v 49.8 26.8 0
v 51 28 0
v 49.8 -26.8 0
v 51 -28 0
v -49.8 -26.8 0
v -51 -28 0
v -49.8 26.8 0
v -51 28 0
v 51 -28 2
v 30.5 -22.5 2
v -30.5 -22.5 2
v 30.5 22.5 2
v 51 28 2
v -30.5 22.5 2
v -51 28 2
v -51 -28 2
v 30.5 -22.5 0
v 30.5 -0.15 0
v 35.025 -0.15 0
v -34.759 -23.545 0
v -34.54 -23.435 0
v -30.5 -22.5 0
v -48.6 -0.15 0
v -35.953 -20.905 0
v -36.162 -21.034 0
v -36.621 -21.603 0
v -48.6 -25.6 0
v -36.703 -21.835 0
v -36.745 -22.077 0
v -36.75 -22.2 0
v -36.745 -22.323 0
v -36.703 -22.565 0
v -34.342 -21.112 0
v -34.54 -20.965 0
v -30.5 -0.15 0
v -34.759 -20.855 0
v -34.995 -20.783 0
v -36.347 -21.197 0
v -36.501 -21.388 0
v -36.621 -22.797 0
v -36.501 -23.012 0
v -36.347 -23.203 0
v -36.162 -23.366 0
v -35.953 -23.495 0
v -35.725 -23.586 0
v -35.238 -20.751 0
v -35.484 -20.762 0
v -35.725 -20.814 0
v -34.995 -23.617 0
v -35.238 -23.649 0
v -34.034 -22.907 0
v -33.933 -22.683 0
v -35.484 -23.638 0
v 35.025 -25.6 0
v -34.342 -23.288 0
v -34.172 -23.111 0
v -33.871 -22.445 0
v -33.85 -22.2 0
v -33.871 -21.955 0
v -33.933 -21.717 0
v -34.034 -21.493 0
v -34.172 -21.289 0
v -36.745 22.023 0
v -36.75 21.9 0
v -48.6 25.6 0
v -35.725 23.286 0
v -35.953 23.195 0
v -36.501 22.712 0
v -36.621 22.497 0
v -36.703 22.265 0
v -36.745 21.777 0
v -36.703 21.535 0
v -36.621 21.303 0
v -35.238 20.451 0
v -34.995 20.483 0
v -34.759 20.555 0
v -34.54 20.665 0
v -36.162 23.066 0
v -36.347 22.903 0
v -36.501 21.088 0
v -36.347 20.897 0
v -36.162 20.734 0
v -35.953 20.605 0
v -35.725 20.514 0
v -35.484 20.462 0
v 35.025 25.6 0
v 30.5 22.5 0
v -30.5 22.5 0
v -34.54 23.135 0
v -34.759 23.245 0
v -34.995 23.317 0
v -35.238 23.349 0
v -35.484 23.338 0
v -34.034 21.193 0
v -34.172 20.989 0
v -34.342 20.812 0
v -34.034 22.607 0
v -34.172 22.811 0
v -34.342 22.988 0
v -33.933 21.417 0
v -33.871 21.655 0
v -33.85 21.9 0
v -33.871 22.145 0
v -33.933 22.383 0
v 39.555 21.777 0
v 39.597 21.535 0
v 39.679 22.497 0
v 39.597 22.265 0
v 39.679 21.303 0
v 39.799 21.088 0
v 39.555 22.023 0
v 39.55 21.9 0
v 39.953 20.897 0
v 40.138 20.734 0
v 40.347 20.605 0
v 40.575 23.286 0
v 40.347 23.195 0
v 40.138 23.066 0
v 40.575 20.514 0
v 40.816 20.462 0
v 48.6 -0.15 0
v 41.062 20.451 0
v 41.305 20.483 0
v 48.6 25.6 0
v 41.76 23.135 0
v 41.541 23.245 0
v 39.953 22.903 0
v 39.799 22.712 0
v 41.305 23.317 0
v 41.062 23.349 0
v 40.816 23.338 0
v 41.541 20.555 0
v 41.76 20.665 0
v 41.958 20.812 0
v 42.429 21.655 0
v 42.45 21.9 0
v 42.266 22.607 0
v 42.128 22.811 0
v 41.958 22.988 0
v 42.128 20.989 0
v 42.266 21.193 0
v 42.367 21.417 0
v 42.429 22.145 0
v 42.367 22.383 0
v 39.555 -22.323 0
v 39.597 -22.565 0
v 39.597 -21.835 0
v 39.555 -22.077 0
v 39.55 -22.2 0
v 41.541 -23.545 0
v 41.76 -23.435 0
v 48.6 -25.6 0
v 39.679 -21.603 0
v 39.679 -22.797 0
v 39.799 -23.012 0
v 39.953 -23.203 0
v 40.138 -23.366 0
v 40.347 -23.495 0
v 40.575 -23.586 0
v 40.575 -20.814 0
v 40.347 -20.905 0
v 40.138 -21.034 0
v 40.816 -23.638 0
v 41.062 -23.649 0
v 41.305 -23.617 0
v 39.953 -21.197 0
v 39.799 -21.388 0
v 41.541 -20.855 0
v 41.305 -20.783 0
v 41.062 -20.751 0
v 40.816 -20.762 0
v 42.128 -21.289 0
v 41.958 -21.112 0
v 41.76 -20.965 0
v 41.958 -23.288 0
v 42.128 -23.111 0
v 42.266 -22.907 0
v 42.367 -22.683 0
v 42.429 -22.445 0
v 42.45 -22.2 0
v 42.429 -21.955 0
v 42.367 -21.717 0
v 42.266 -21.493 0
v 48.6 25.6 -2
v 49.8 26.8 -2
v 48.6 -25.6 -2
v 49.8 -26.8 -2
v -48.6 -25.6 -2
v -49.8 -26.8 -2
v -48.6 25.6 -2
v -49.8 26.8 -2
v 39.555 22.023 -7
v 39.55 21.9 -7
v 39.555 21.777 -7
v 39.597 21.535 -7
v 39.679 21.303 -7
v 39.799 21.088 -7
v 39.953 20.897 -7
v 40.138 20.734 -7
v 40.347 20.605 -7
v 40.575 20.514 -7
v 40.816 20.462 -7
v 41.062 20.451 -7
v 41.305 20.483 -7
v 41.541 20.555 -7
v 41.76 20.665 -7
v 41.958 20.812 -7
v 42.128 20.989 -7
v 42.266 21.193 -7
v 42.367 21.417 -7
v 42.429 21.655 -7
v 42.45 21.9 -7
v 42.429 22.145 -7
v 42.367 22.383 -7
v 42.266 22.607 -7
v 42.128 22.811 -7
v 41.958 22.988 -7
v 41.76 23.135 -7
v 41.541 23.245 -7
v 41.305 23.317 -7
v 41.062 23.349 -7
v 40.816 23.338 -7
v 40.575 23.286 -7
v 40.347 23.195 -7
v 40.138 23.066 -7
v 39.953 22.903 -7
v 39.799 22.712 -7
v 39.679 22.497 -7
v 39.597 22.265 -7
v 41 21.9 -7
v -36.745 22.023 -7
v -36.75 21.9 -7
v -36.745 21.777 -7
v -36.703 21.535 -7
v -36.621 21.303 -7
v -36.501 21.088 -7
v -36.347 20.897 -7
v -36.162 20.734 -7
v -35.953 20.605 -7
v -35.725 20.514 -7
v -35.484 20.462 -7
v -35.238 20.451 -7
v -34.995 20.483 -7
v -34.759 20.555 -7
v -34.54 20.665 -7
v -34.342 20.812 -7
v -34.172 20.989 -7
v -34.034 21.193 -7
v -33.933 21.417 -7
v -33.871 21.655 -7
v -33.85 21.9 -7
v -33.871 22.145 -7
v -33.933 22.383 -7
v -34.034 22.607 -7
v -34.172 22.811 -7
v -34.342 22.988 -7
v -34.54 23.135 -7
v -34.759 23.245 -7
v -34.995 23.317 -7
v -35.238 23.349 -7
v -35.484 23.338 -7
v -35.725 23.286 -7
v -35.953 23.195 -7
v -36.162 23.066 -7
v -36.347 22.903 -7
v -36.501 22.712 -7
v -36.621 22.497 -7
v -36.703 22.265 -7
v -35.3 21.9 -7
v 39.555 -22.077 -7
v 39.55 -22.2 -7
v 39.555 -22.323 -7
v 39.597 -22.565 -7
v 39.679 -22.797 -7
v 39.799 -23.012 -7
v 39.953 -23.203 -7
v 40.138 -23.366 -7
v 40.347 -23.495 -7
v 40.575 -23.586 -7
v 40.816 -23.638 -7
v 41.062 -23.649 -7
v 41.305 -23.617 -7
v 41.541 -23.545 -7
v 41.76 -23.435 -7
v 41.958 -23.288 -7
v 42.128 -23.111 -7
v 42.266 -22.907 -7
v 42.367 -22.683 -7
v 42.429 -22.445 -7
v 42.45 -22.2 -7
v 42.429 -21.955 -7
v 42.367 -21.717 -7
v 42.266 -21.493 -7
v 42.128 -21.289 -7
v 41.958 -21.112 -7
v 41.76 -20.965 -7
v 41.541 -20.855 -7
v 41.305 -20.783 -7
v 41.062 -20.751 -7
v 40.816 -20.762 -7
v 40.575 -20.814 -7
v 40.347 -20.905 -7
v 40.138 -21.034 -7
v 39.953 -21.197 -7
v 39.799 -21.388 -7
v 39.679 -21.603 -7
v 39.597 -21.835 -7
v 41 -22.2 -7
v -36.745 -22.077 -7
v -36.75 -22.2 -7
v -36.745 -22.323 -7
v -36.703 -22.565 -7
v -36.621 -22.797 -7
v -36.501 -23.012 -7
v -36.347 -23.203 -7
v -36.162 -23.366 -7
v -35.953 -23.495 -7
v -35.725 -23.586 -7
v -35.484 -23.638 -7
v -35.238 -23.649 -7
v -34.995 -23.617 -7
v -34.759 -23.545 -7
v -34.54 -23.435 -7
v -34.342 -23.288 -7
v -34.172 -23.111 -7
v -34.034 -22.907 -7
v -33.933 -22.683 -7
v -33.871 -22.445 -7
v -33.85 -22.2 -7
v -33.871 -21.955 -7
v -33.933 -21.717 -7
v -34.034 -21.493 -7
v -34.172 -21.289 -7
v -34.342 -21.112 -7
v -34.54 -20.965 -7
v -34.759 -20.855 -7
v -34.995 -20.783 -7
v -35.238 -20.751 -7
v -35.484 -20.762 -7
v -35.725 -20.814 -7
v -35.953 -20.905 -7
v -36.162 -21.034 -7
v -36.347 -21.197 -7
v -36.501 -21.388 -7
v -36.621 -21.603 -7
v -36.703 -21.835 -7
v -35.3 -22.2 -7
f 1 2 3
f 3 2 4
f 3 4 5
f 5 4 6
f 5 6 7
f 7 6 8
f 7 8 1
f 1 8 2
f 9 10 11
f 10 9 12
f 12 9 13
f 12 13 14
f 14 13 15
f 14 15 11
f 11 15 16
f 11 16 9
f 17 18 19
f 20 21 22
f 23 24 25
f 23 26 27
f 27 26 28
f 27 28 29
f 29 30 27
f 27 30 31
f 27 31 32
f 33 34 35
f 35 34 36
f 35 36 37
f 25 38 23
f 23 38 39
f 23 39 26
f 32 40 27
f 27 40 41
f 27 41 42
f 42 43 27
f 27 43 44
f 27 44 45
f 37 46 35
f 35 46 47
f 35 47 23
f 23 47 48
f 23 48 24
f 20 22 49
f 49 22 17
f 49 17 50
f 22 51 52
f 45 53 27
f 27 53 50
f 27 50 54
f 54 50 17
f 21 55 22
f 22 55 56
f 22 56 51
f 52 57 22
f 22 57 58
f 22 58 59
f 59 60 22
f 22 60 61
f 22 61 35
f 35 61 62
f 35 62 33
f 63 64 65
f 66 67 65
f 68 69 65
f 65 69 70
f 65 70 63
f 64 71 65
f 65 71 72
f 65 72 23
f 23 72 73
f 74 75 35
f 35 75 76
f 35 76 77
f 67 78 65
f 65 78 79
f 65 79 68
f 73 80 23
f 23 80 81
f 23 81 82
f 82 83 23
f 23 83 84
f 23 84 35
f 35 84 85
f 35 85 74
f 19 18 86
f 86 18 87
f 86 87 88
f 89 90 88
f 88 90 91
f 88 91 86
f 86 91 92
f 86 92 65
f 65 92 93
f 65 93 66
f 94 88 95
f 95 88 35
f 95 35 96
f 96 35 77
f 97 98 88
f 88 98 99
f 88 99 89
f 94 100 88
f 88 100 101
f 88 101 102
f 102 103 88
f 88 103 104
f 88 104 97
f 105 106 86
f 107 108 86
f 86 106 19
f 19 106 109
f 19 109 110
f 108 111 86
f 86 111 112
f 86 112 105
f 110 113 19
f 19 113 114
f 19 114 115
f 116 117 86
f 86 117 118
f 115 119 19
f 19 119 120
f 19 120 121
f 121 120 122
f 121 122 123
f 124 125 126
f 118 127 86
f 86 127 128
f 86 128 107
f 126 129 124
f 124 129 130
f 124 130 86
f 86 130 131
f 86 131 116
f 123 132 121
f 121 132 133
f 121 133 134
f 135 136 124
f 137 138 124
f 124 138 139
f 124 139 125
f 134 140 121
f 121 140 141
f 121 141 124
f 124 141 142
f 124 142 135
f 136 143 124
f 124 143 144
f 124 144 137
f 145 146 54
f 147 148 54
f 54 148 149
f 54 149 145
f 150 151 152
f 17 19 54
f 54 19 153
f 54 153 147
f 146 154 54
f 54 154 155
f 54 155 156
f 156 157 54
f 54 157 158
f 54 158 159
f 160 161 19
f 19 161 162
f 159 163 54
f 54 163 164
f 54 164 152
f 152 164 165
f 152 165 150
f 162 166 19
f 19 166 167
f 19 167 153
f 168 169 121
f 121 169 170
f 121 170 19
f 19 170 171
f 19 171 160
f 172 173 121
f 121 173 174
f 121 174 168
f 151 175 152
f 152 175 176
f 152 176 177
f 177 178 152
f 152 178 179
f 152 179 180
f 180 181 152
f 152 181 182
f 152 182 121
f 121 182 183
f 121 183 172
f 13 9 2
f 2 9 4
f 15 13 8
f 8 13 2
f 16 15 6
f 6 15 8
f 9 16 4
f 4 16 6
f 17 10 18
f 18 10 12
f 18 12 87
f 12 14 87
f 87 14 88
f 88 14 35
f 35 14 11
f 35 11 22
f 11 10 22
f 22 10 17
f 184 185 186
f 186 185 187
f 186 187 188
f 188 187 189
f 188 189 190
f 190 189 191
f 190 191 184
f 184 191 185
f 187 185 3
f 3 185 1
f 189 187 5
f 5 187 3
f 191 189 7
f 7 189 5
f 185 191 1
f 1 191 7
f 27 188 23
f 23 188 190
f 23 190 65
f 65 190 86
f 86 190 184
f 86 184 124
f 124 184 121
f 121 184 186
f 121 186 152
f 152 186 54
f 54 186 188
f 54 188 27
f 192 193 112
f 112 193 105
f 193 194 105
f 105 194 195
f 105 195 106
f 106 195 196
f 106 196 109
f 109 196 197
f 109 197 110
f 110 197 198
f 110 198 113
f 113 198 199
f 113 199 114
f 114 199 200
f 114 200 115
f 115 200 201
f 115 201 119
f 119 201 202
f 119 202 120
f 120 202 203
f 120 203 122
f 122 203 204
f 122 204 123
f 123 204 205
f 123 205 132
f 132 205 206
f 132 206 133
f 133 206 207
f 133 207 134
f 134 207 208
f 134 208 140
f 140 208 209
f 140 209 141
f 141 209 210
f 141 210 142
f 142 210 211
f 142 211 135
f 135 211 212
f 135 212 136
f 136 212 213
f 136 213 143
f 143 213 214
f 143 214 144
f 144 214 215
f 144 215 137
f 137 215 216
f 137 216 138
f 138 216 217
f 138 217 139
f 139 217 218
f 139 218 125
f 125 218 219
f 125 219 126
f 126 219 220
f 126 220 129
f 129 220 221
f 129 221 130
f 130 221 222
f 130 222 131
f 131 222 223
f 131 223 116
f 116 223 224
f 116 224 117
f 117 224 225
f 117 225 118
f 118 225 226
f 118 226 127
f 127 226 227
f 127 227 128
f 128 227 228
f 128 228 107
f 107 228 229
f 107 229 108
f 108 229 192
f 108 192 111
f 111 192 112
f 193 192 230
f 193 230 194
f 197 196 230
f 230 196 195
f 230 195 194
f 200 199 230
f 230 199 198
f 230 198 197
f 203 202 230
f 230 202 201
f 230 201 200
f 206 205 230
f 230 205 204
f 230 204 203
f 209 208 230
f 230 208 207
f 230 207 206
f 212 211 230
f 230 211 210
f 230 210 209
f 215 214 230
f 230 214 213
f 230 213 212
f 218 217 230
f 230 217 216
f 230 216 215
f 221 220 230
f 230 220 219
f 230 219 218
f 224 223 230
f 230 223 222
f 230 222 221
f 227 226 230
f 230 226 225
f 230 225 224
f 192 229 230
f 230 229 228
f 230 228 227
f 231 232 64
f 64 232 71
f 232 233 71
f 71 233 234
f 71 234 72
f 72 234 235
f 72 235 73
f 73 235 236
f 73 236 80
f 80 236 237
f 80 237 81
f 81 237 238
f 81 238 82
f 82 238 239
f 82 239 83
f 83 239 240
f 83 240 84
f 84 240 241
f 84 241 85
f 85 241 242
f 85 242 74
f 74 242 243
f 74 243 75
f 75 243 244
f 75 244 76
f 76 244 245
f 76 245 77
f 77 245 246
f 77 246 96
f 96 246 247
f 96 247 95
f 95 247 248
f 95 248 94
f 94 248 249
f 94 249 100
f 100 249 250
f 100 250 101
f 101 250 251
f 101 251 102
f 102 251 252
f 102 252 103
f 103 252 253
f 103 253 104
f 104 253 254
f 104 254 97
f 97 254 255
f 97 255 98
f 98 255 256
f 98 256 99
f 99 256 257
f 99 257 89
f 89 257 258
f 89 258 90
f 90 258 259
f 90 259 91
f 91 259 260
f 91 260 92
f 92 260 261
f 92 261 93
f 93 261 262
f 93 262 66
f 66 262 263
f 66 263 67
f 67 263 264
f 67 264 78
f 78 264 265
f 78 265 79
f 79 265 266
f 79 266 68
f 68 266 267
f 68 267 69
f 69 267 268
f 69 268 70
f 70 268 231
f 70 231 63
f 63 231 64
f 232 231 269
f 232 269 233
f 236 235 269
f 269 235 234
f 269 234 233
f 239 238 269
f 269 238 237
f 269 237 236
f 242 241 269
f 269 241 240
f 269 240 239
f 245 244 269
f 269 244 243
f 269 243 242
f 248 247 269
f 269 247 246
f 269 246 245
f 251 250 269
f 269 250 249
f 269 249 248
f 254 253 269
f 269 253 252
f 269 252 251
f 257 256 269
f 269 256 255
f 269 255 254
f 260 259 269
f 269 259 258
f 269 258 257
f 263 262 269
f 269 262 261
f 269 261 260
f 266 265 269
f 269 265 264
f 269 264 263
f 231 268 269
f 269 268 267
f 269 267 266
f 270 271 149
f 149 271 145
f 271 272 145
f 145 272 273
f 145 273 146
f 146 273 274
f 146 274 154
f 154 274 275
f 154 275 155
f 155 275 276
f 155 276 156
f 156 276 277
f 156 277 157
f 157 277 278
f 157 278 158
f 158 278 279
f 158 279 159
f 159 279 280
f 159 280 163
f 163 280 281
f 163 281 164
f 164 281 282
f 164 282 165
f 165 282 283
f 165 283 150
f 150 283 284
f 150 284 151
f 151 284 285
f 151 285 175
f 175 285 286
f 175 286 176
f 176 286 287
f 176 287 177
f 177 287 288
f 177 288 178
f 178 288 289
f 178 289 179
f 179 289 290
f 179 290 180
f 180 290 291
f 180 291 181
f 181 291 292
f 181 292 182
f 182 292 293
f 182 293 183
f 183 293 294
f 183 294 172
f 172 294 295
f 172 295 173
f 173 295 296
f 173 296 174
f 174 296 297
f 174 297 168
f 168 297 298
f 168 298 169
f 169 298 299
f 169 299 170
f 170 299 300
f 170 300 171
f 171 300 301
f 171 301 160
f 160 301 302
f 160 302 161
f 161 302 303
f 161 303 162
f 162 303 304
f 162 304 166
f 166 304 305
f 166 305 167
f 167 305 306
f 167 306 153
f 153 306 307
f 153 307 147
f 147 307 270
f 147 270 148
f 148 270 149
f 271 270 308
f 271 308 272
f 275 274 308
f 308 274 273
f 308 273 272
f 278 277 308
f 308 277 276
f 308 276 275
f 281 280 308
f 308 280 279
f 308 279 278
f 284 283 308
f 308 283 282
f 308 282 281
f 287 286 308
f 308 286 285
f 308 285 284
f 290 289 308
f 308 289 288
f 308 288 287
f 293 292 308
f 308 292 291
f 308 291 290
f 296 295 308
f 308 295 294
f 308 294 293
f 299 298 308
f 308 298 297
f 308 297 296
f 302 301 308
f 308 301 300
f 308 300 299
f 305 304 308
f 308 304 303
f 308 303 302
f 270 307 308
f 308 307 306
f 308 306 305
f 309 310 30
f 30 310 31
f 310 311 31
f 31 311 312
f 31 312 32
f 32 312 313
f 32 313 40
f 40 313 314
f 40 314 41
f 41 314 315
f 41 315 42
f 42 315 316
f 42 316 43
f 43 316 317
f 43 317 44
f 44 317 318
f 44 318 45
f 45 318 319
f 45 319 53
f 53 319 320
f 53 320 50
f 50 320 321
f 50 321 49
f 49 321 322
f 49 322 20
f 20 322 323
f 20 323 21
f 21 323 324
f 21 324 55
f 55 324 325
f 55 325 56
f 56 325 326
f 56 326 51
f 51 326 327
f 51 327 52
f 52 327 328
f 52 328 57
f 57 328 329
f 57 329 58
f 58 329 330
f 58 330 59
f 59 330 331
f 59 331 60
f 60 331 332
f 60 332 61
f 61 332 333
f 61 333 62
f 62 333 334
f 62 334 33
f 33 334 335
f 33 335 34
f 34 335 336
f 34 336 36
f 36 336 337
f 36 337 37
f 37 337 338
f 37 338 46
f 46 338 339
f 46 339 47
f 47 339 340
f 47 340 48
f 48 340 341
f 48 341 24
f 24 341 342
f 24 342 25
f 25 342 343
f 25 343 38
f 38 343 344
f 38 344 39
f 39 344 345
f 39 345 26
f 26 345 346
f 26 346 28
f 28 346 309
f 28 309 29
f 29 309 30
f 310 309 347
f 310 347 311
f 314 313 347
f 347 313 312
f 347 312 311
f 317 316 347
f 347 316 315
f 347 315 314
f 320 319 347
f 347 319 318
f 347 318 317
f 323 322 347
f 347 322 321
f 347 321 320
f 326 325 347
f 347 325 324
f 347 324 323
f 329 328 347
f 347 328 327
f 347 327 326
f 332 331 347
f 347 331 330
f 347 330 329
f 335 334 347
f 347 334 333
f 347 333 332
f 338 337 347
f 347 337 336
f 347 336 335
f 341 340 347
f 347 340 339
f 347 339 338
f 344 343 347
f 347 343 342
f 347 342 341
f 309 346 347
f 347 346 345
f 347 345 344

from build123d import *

# Parameters (mm, degrees)
SKETCH1_W         = 102
SKETCH1_H         = 56
SKETCH1_W_2       = 61
SKETCH1_H_2       = 45
FRONT_DEPTH       = 2
SKETCH2_W         = 99.6
SKETCH2_H         = 53.6
SKETCH2_W_2       = 97.2
SKETCH2_H_2       = 51.2
WALLS_DEPTH       = 2
SKETCH3_R         = 1.45
SCREW_SPOTS_DEPTH = 7


with BuildPart() as part:
    # Sketch1 → Front (new body)
    with BuildSketch(Plane.XY):
        Rectangle(SKETCH1_W, SKETCH1_H)
        Rectangle(SKETCH1_W_2, SKETCH1_H_2, mode=Mode.SUBTRACT)
    extrude(amount=FRONT_DEPTH)

    # Sketch2 → WALLS (add)
    with BuildSketch(Plane(origin=(0, 0, 0), x_dir=(-1, 0, 0), z_dir=(0, 0, -1))):
        Rectangle(SKETCH2_W, SKETCH2_H)
        Rectangle(SKETCH2_W_2, SKETCH2_H_2, mode=Mode.SUBTRACT)
    extrude(amount=WALLS_DEPTH)

    # Sketch3 → SCREW_SPOTS (add)
    with BuildSketch(Plane(origin=(0, 0, 0), x_dir=(-1, 0, 0), z_dir=(0, 0, -1))):
        with Locations((-41, 21.9)):
            Circle(SKETCH3_R)
        with Locations((35.3, 21.9)):
            Circle(SKETCH3_R)
        with Locations((-41, -22.2)):
            Circle(SKETCH3_R)
        with Locations((35.3, -22.2)):
            Circle(SKETCH3_R)
    extrude(amount=SCREW_SPOTS_DEPTH)


solid = part.part
